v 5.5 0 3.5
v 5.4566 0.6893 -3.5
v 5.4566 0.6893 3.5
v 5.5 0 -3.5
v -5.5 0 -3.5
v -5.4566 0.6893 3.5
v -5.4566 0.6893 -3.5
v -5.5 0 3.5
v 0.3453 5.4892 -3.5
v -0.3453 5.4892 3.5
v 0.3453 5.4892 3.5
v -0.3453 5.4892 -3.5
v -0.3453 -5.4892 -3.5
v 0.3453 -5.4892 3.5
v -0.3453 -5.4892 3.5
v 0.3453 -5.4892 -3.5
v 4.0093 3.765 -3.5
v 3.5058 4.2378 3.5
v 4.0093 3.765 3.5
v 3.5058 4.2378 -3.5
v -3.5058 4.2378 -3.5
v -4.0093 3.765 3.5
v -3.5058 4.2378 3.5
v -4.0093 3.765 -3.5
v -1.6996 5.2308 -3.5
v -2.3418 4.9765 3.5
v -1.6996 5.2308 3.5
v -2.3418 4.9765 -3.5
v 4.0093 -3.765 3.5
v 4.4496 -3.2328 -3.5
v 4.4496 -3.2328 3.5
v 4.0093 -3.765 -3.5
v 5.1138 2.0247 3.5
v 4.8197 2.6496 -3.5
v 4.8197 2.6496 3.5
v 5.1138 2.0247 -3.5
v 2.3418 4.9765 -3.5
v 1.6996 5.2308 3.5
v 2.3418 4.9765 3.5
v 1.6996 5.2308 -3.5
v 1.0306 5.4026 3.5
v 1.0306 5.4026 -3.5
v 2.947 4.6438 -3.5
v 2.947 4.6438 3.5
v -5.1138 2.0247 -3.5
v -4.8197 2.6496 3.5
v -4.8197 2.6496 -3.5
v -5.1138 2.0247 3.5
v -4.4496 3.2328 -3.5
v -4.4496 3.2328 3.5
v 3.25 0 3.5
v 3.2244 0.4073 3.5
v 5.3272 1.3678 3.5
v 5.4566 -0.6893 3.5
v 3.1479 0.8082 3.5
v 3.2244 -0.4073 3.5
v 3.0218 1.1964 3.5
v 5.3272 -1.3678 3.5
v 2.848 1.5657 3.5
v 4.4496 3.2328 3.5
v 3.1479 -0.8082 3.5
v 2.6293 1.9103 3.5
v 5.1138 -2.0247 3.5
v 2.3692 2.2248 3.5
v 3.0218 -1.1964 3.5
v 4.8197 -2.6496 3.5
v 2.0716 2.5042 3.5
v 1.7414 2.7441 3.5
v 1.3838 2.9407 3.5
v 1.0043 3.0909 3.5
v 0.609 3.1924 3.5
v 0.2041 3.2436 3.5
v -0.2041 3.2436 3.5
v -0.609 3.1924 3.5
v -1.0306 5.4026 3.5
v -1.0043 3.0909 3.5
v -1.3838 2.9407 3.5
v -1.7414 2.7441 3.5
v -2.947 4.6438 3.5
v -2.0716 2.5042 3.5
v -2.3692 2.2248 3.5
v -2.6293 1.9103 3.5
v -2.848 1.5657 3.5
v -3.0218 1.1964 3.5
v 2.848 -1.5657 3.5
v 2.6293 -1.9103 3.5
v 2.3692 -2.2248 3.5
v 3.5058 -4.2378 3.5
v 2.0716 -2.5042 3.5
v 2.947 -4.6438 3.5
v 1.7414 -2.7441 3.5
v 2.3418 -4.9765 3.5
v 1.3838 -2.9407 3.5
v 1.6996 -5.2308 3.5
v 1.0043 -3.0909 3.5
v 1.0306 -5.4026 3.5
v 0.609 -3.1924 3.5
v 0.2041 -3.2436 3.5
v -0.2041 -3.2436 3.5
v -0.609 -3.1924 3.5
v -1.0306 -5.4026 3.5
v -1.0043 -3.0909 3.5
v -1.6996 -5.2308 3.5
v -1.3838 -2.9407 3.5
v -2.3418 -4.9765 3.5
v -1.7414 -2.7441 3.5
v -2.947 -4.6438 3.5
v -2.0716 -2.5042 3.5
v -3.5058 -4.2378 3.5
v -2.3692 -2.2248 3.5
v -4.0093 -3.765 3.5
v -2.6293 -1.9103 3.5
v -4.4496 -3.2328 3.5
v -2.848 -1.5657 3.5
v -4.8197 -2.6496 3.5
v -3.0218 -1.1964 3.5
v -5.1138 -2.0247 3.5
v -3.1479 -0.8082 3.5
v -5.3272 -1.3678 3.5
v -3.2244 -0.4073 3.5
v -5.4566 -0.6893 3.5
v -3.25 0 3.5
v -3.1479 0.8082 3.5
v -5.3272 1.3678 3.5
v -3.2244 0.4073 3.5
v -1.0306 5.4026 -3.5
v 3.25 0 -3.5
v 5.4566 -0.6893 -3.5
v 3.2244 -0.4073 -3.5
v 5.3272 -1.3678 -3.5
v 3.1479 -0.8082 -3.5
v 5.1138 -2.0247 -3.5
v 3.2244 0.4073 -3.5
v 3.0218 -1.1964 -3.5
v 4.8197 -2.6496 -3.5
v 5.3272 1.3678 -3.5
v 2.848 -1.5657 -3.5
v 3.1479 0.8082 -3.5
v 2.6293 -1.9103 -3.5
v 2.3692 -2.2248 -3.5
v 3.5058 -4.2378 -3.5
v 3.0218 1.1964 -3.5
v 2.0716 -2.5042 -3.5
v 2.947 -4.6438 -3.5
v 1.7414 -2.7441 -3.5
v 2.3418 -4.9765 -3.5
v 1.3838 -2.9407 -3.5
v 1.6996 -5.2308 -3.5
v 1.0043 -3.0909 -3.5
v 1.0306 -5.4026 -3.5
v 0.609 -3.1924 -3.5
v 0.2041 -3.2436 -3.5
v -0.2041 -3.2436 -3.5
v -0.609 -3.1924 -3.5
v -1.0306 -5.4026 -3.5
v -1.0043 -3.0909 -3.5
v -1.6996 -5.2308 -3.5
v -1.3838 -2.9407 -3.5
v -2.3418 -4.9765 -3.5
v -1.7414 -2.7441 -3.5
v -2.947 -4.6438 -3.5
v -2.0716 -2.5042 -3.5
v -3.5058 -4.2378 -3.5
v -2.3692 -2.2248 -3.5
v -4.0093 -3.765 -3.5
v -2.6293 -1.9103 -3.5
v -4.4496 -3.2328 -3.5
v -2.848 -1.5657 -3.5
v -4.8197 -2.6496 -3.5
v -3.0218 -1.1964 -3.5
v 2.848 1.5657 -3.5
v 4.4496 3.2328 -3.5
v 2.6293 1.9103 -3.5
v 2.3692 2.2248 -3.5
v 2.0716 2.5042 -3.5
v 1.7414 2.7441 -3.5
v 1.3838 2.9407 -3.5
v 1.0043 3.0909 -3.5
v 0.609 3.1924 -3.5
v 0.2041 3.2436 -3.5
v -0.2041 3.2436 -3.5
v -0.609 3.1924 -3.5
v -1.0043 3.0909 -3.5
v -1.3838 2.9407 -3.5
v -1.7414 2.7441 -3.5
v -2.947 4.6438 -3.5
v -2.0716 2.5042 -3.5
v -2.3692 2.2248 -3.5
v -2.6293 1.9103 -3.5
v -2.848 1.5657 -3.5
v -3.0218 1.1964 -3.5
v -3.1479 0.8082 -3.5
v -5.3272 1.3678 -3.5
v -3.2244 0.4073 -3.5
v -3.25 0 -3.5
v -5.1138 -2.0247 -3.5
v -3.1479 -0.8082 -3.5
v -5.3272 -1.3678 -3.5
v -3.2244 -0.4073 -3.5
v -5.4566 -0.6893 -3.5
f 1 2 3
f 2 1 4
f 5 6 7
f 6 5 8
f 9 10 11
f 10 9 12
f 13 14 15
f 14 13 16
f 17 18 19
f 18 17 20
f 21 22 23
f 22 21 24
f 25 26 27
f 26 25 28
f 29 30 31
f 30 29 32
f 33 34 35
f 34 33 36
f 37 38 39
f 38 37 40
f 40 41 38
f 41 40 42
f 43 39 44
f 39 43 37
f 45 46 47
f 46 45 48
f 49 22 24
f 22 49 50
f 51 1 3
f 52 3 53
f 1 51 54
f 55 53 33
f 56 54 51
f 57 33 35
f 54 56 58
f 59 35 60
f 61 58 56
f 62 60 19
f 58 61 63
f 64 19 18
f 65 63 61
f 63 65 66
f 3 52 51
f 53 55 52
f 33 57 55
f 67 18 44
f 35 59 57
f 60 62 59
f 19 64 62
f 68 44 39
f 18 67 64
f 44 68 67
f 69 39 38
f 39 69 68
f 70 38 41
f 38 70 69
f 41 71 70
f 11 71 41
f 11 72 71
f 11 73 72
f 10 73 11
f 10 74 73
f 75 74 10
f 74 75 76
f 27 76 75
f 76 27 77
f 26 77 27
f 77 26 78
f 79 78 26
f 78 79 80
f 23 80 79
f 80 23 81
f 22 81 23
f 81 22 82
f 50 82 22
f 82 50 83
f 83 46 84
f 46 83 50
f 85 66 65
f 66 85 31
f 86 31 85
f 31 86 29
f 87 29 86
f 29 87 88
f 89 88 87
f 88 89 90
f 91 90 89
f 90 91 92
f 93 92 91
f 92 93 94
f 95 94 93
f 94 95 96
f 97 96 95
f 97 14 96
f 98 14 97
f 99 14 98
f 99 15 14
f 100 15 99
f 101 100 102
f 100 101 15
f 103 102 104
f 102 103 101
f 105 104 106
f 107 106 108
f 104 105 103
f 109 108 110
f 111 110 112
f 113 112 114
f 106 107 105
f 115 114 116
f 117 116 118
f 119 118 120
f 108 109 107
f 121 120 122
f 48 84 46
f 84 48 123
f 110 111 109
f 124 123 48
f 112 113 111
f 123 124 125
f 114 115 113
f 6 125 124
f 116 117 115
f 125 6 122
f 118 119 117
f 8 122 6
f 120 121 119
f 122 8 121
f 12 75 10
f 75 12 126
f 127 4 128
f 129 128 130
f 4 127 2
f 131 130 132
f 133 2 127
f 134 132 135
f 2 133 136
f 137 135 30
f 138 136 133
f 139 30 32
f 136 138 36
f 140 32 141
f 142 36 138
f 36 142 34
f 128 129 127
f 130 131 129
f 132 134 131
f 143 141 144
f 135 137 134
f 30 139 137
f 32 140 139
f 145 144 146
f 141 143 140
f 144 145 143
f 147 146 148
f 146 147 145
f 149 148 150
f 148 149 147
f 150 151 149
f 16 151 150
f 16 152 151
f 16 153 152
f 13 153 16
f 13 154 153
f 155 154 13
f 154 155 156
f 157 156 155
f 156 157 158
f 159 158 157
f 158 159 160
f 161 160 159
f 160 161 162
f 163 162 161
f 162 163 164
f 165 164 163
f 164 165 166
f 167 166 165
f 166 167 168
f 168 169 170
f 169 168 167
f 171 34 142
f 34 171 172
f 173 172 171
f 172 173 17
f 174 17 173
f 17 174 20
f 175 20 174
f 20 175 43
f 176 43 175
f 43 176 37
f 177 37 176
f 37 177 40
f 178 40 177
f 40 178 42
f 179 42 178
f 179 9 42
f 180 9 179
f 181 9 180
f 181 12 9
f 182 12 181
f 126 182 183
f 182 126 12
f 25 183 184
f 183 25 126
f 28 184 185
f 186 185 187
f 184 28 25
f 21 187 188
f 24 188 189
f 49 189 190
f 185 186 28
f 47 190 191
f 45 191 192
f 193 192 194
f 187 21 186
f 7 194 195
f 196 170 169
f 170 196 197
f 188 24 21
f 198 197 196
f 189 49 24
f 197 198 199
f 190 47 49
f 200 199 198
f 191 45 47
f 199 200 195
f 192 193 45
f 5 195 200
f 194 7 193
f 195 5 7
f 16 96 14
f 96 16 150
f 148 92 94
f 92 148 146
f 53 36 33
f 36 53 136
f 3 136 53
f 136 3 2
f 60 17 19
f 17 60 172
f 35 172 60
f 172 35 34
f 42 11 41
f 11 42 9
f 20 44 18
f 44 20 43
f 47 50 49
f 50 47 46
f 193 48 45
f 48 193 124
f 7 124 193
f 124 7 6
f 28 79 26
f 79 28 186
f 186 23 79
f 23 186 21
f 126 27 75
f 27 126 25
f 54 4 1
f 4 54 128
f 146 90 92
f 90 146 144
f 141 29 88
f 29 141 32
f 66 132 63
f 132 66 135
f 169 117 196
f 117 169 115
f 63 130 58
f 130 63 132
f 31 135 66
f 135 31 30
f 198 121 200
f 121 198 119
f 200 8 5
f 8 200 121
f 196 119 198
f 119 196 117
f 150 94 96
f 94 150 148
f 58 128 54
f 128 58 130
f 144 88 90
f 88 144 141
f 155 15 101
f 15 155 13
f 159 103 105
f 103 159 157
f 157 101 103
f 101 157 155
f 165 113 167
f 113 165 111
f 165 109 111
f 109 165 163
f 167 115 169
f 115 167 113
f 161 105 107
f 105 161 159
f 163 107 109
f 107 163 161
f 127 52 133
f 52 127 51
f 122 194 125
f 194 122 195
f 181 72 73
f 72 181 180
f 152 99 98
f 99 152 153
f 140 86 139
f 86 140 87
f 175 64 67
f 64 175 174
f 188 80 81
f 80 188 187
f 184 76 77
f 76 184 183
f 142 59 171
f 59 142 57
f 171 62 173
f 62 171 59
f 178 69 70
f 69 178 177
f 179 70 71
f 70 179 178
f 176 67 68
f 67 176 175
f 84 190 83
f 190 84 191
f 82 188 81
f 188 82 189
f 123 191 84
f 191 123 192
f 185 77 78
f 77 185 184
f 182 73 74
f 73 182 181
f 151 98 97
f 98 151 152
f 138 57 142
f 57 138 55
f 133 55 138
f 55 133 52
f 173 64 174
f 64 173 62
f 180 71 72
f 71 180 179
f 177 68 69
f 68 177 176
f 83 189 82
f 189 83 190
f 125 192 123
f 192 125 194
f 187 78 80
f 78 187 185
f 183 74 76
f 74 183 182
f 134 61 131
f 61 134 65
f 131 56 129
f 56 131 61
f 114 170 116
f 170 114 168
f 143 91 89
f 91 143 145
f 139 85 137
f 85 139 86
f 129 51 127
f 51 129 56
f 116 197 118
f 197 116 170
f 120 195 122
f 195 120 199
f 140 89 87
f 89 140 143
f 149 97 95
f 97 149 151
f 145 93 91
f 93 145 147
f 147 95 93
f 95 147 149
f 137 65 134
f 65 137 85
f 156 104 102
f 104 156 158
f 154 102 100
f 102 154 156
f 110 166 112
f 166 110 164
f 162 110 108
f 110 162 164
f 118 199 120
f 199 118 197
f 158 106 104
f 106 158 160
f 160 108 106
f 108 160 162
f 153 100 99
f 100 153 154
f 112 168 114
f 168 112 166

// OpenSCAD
$fn = 50;


difference() {
	union() {
		translate(v = [0, 0, -3.5000000000]) {
			cylinder(h = 7, r = 5.5000000000);
		}
	}
	union() {
		translate(v = [0, 0, -100.0000000000]) {
			cylinder(h = 200, r = 3.2500000000);
		}
	}
}
